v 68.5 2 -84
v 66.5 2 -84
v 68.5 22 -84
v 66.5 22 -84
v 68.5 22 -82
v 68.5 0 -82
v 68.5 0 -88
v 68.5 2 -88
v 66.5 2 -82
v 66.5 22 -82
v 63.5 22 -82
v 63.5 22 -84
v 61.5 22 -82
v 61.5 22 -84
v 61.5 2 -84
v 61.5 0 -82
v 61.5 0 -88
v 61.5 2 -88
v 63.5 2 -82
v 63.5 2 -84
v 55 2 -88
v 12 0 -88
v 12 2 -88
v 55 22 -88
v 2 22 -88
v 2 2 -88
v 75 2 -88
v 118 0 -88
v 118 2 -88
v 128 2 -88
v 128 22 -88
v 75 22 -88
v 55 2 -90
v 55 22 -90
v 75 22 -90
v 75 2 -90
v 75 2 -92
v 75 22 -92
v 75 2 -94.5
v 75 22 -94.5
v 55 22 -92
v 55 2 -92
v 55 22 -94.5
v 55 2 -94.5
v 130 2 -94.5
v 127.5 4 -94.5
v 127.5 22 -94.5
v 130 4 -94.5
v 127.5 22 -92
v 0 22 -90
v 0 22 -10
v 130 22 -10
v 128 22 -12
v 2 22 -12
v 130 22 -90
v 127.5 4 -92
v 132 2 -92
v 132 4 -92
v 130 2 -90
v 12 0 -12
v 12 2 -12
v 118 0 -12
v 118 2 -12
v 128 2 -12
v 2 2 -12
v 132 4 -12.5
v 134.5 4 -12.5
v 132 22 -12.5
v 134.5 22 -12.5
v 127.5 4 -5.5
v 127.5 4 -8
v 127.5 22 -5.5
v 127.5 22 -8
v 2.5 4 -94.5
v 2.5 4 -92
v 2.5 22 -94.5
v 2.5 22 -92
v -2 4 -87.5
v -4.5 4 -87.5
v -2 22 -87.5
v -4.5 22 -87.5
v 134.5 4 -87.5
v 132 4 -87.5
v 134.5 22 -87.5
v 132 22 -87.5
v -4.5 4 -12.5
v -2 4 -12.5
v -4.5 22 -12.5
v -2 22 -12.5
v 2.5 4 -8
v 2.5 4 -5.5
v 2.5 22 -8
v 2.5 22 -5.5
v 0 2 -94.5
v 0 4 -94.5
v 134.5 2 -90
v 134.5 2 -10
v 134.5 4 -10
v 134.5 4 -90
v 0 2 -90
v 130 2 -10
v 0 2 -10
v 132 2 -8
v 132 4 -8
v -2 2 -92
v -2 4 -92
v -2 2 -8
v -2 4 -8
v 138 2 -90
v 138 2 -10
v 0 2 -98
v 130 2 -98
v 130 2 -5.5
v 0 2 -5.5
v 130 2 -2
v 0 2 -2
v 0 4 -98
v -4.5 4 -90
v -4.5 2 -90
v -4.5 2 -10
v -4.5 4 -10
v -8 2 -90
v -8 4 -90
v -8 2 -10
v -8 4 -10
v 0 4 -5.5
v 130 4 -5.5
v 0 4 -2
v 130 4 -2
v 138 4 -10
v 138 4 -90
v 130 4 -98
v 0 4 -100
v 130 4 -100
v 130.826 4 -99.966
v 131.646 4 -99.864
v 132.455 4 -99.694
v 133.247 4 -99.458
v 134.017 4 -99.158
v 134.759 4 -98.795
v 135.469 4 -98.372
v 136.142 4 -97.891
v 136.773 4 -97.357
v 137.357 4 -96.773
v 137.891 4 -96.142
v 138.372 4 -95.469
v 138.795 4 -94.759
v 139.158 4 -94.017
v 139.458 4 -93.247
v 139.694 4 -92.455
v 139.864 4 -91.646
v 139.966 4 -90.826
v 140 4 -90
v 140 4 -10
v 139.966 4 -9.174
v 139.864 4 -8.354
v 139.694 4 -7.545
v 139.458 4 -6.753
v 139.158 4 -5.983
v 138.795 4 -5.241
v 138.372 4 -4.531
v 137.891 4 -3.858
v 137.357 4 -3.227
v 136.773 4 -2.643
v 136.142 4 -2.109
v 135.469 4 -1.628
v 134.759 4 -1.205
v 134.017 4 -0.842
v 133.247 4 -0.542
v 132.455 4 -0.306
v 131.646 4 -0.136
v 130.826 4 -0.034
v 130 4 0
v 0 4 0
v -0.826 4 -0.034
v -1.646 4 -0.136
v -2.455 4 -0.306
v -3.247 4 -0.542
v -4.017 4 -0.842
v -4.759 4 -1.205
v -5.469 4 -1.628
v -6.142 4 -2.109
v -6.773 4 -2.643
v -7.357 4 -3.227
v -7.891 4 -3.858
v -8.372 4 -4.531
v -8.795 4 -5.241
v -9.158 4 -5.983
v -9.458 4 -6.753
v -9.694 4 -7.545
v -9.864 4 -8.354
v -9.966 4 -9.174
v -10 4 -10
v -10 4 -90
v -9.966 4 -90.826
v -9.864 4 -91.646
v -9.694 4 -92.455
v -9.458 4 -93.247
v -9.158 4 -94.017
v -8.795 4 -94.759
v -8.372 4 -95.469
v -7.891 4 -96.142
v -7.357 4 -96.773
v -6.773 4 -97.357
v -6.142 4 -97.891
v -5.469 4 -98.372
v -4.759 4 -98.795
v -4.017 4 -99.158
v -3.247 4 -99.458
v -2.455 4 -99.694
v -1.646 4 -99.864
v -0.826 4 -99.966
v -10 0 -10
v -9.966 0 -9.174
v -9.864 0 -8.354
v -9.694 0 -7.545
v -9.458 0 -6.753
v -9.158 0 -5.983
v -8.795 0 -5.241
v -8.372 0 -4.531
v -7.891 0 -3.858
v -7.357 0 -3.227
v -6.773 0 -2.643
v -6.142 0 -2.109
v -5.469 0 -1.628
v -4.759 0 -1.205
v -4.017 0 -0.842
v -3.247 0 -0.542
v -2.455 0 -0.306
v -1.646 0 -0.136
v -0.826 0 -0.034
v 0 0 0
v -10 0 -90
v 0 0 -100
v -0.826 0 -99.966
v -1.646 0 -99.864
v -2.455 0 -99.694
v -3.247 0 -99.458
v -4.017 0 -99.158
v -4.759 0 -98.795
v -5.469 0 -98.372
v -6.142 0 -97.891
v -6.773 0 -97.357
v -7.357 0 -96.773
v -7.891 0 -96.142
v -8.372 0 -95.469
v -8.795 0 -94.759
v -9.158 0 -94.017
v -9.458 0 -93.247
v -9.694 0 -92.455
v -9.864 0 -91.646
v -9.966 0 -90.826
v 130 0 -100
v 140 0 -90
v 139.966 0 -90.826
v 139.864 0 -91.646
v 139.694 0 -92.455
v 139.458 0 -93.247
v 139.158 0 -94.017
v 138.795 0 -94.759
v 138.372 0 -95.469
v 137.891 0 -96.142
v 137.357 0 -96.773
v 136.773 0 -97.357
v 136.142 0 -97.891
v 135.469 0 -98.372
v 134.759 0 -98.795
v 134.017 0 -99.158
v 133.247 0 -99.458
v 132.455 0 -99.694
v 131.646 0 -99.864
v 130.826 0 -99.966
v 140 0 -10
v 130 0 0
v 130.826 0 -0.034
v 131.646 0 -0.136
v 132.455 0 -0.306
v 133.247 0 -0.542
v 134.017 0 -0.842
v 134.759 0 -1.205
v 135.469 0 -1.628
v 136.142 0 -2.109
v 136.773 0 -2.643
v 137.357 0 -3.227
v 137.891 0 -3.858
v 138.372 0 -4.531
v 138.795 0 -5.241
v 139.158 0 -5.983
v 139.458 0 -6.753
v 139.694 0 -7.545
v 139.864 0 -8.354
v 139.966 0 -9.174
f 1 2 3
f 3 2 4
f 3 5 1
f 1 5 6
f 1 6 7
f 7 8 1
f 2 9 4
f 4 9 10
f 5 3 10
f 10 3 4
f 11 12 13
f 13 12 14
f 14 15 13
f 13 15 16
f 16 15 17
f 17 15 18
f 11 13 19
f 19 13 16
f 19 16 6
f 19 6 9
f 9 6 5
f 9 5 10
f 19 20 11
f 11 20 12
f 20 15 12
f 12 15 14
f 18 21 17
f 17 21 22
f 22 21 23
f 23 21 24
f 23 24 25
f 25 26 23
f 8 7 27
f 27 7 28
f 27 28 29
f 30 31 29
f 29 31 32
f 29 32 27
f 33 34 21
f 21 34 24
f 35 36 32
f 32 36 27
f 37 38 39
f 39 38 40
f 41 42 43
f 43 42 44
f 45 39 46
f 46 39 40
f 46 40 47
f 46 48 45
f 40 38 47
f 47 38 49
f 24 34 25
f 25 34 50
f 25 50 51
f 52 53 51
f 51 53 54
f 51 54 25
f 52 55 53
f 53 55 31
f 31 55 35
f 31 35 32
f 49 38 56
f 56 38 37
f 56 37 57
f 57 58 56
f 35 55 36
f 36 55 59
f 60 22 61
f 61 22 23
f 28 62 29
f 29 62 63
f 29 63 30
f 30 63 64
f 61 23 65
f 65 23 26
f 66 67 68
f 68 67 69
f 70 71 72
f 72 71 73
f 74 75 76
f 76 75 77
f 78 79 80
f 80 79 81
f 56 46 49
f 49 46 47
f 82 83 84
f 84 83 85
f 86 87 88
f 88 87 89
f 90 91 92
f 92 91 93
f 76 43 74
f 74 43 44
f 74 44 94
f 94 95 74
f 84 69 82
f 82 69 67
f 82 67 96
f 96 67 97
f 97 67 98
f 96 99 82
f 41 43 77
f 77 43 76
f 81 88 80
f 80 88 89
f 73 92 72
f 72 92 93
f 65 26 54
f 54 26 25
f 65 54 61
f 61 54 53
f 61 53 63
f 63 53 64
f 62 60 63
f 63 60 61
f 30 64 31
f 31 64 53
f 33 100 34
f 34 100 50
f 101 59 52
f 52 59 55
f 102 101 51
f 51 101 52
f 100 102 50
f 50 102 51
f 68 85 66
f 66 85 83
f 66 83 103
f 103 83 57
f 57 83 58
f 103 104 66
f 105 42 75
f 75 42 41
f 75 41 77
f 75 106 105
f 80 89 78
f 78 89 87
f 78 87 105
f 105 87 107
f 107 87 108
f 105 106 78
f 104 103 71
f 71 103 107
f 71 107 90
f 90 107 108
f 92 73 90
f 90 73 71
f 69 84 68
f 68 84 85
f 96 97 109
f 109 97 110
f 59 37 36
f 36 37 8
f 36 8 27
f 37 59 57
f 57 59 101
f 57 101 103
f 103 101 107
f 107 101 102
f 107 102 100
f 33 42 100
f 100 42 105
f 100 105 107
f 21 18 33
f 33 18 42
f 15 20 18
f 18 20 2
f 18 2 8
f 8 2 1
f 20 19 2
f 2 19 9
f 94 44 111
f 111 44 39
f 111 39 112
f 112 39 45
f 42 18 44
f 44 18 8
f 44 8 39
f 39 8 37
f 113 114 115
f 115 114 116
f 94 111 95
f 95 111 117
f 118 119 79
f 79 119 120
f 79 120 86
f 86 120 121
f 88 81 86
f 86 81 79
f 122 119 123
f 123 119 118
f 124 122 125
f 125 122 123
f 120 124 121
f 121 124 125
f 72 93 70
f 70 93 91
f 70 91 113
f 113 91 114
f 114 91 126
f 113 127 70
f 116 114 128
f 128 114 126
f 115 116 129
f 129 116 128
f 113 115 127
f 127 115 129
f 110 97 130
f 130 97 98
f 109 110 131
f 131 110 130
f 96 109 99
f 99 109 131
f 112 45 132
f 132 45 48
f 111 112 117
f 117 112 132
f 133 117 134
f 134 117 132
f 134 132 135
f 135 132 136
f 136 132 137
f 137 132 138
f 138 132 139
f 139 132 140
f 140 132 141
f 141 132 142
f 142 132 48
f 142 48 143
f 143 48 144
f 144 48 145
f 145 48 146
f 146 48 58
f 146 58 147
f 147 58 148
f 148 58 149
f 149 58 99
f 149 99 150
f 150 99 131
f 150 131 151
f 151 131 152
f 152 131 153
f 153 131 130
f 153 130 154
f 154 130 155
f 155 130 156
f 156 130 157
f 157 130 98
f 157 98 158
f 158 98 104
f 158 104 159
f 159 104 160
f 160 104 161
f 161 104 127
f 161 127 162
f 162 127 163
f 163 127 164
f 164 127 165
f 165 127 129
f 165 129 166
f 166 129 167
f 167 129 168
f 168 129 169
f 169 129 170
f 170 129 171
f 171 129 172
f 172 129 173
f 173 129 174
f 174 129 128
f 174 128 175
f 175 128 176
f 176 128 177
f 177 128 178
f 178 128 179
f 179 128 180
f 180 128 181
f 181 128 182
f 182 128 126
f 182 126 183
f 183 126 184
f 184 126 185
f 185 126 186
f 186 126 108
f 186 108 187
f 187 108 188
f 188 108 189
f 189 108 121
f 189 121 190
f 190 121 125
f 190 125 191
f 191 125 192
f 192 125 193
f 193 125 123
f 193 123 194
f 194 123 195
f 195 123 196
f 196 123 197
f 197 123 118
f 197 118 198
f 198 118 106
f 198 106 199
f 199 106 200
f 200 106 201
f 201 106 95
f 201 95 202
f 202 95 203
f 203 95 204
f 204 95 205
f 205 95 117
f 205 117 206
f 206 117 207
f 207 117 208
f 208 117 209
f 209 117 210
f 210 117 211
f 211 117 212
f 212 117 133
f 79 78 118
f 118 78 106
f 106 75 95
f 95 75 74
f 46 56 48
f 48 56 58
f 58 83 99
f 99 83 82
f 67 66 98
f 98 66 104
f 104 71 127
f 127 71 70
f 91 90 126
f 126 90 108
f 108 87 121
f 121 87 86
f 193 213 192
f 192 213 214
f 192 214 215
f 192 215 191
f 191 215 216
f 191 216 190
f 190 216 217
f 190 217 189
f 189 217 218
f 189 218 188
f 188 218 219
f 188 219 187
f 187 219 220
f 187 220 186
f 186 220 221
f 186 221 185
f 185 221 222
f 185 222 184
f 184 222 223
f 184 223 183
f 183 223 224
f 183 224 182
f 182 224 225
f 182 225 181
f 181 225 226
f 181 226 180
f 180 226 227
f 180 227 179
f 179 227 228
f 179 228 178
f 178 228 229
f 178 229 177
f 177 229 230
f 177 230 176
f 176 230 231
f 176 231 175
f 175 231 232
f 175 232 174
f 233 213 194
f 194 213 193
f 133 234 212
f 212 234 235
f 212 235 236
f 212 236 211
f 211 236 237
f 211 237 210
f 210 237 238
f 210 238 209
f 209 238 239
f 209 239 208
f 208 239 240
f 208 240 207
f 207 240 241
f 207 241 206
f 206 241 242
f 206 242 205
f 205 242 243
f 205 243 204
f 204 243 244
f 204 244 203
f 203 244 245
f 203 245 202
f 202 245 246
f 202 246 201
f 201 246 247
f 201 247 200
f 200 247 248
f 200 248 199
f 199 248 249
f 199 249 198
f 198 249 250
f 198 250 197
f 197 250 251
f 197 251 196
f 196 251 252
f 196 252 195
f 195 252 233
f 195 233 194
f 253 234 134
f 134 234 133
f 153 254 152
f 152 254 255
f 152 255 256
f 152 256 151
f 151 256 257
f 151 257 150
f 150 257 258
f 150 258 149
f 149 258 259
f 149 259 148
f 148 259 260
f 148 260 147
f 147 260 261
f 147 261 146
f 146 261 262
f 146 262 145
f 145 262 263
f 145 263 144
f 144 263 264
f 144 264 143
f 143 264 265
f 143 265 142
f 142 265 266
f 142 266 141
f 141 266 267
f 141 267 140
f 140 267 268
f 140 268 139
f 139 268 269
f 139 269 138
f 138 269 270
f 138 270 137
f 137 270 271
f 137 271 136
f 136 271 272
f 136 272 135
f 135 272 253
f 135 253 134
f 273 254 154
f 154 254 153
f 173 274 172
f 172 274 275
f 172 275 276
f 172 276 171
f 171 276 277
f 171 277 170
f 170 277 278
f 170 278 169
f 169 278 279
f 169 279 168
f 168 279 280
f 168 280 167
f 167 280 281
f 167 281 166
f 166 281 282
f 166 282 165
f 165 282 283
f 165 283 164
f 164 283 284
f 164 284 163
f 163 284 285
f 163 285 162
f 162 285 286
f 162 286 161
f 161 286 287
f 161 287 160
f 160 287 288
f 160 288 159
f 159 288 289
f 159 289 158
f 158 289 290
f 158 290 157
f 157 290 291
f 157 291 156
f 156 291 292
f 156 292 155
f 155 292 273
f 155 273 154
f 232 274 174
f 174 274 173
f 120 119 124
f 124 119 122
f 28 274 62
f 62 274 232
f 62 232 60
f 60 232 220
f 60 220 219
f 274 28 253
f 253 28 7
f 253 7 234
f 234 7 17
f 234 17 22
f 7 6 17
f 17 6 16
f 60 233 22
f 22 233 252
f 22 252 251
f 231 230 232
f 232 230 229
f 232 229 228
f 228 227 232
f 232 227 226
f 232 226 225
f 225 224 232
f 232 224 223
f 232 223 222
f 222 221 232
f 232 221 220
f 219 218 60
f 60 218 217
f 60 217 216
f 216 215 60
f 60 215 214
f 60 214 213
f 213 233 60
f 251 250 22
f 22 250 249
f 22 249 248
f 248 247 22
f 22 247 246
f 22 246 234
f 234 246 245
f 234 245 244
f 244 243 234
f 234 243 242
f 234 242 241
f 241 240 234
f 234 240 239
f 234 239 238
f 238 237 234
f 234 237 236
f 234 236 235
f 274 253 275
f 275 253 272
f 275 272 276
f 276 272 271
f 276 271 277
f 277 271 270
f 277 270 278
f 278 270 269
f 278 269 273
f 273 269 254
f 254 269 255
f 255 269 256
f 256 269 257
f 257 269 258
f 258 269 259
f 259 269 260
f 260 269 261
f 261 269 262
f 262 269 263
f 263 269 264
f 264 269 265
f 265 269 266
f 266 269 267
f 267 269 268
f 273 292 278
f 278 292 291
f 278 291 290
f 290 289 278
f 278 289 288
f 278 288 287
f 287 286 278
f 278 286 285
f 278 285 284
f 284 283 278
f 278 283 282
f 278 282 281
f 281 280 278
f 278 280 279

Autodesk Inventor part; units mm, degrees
ref_plane "YZ Plane" through (0, 0, 0) normal (1, 0, 0) x (0, 1, 0)
ref_plane "XZ Plane" through (0, 0, 0) normal (0, 1, 0) x (-1, 0, 0)
ref_plane "XY Plane" through (0, 0, 0) normal (0, 0, 1) x (1, 0, 0)
sketch "Skizze1" plane through (0, 0, 0) normal (0, 1, 0) x (-1, 0, 0)
  line L0 (0, 0) -> (-130, 0)
  line L1 (-140, -10) -> (-140, -90)
  line L2 (-130, -100) -> (0, -100)
  line L3 (10, -10) -> (10, -90)
  arc A0 (0, -100) -> (10, -90) centre (0, -90) ccw
  arc A1 (-140, -90) -> (-130, -100) centre (-130, -90) ccw
  arc A2 (-130, 0) -> (-140, -10) centre (-130, -10) ccw
  arc A3 (10, -10) -> (0, 0) centre (0, -10) ccw
  dimension "d0" = 150
  dimension "d1" = 100
  dimension "d2" = 10
extrude "Extrusion1" add sketch "Skizze1" along normal blind 2
sketch "Skizze2" plane through (0, 2, 0) normal (0, 1, 0) x (1, 0, 0)
  line L0 (0, 0) -> (130, 0) projected
  arc A0 (130, 0) -> (140, 10) centre (130, 10) ccw projected
  line L1 (140, 10) -> (140, 90) projected
  arc A1 (140, 90) -> (130, 100) centre (130, 90) ccw projected
  line L2 (130, 100) -> (0, 100) projected
  arc A2 (0, 100) -> (-10, 90) centre (0, 90) ccw projected
  line L3 (-10, 90) -> (-10, 10) projected
  arc A3 (-10, 10) -> (0, 0) centre (0, 10) ccw projected
  line L4 (0, 2) -> (130, 2)
  line L5 (130, 2) -> (130, 5.5)
  line L6 (130, 5.5) -> (0, 5.5)
  line L7 (0, 5.5) -> (0, 2)
  line L8 (138, 10) -> (134.5, 10)
  line L9 (134.5, 10) -> (134.5, 90)
  line L10 (134.5, 90) -> (138, 90)
  line L11 (138, 90) -> (138, 10)
  line L12 (130, 98) -> (0, 98)
  line L13 (0, 98) -> (0, 94.5)
  line L14 (0, 94.5) -> (130, 94.5)
  line L15 (130, 94.5) -> (130, 98)
  line L16 (-8, 90) -> (-4.5, 90)
  line L17 (-4.5, 90) -> (-4.5, 10)
  line L18 (-4.5, 10) -> (-8, 10)
  line L19 (-8, 10) -> (-8, 90)
  line L20 (65, 2) -> (65, 0) construction
  line L21 (0, 0) -> (130, 0) construction
  line L22 (138, 50) -> (140, 50) construction
  line L23 (140, 10) -> (140, 90) construction
  line L24 (65, 98) -> (65, 100) construction
  line L25 (130, 100) -> (0, 100) construction
  line L26 (-8, 50) -> (-10, 50) construction
  line L27 (-10, 90) -> (-10, 10) construction
  line L28 (140, 88) -> (138, 88)
  line L29 (134.5, 88) -> (132.5, 88)
  line L30 (132.5, 88) -> (132.5, 92.5)
  line L31 (132.5, 92.5) -> (128, 92.5)
  line L32 (128, 92.5) -> (128, 94.5)
  line L33 (128, 98) -> (128, 100)
  line L34 (140, 12) -> (138, 12)
  line L35 (134.5, 12) -> (132.5, 12)
  line L36 (132.5, 12) -> (132.5, 7.5)
  line L37 (132.5, 7.5) -> (128, 7.5)
  line L38 (128, 7.5) -> (128, 5.5)
  line L39 (128, 2) -> (128, 0)
  line L40 (2, 0) -> (2, 2)
  line L41 (2, 5.5) -> (2, 7.5)
  line L42 (2, 7.5) -> (-2.5, 7.5)
  line L43 (-2.5, 7.5) -> (-2.5, 12)
  line L44 (-2.5, 12) -> (-4.5, 12)
  line L45 (-8, 12) -> (-10, 12)
  line L46 (-10, 88) -> (-8, 88)
  line L47 (-4.5, 88) -> (-2.5, 88)
  line L48 (-2.5, 88) -> (-2.5, 92.5)
  line L49 (-2.5, 92.5) -> (2, 92.5)
  line L50 (2, 92.5) -> (2, 94.5)
  line L51 (2, 98) -> (2, 100)
  line L52 (-2, 92) -> (132, 92)
  line L53 (132, 92) -> (132, 8)
  line L54 (132, 8) -> (-2, 8)
  line L55 (-2, 8) -> (-2, 92)
  line L56 (130, 90) -> (0, 90)
  line L57 (0, 90) -> (0, 10)
  line L58 (0, 10) -> (130, 10)
  line L59 (130, 10) -> (130, 90)
  line L60 (-2.5, 92.5) -> (0, 90) construction
  line L61 (132.5, 92.5) -> (130, 90) construction
  line L62 (132.5, 7.5) -> (130, 10) construction
  line L63 (-2.5, 7.5) -> (0, 10) construction
  line L64 (2, 88) -> (128, 88)
  line L65 (128, 88) -> (128, 12)
  line L66 (128, 12) -> (2, 12)
  line L67 (2, 12) -> (2, 88)
  line L68 (132.5, 12) -> (132, 12)
  line L69 (128, 7.5) -> (128, 8)
  line L70 (132.5, 88) -> (132, 88)
  line L71 (128, 92.5) -> (128, 92)
  line L72 (2, 92.5) -> (2, 92)
  line L73 (-2.5, 88) -> (-2, 88)
  line L74 (2, 7.5) -> (2, 8)
  line L75 (-2.5, 12) -> (-2, 12)
  point P0 (130, 3.75)
  point P1 (128, 0)
  dimension "d5" = 3.5
  dimension "d6" = 2
  dimension "d7" = 2
  dimension "d12" = 2
  dimension "d13" = 2
  dimension "d14" = 0.5
  dimension "d15" = 2
extrude "Extrusion2" add sketch "Skizze2" along normal blind 2 contours A3 L3 L45 L19 L18 L17 L44 L43 L42 L41 L6 L7 L4 L40 L0 | L40 L4 L39 L0 | L39 L4 L5 L6 L38 L37 L36 L35 L9 L8 L11 L34 L1 A0 L0 | L3 L46 L19 L45 | L3 A2 L2 L51 L12 L13 L14 L50 L49 L48 L47 L17 L16 L19 L46 | L34 L11 L28 L1 | L28 L11 L10 L9 L29 L30 L31 L32 L14 L15 L12 L33 L2 A1 L1 | L2 L33 L12 L51
extrude "Extrusion4" add sketch "Skizze2" along normal blind 20 contours L41 L74 L54 L69 L38 L6 | L42 L43 L75 L55 L54 L74 | L17 L47 L73 L55 L75 L44 | L69 L54 L53 L68 L36 L37 | L48 L49 L72 L52 L55 L73 | L35 L68 L53 L70 L29 L9 | L14 L32 L71 L52 L72 L50 | L70 L53 L52 L71 L31 L30 | L59 L58 L57 L56
sketch "Skizze3" plane through (0, 22, 0) normal (0, 1, 0) x (1, 0, 0)
  line L0 (132.5, 7.5) -> (132.5, 12) projected
  line L1 (132.5, 12) -> (134.5, 12) projected
  line L2 (134.5, 12) -> (134.5, 88) projected
  line L3 (134.5, 88) -> (132.5, 88) projected
  line L4 (132.5, 88) -> (132.5, 92.5) projected
  line L5 (132.5, 92.5) -> (128, 92.5) projected
  line L6 (128, 92.5) -> (128, 94.5) projected
  line L7 (128, 94.5) -> (2, 94.5) projected
  line L8 (2, 94.5) -> (2, 92.5) projected
  line L9 (2, 92.5) -> (-2.5, 92.5) projected
  line L10 (-2.5, 92.5) -> (-2.5, 88) projected
  line L11 (-2.5, 88) -> (-4.5, 88) projected
  line L12 (-4.5, 88) -> (-4.5, 12) projected
  line L13 (-4.5, 12) -> (-2.5, 12) projected
  line L14 (-2.5, 12) -> (-2.5, 7.5) projected
  line L15 (-2.5, 7.5) -> (2, 7.5) projected
  line L16 (2, 7.5) -> (2, 5.5) projected
  line L17 (2, 5.5) -> (128, 5.5) projected
  line L18 (128, 5.5) -> (128, 7.5) projected
  line L19 (128, 7.5) -> (132.5, 7.5) projected
  line L20 (132, 8) -> (-2, 8) projected
  line L21 (-2, 8) -> (-2, 92) projected
  line L22 (-2, 92) -> (132, 92) projected
  line L23 (132, 92) -> (132, 8) projected
  line L24 (132, 12.5) -> (132, 8)
  line L25 (132, 8) -> (127.5, 8)
  line L26 (127.5, 8) -> (127.5, 6)
  line L27 (127.5, 6) -> (2.5, 6)
  line L28 (2.5, 6) -> (2.5, 8)
  line L29 (2.5, 8) -> (-2, 8)
  line L30 (-2, 8) -> (-2, 12.5)
  line L31 (-2, 12.5) -> (-4, 12.5)
  line L32 (-4, 12.5) -> (-4, 87.5)
  line L33 (-4, 87.5) -> (-2, 87.5)
  line L34 (-2, 87.5) -> (-2, 92)
  line L35 (-2, 92) -> (2.5, 92)
  line L36 (2.5, 92) -> (2.5, 94)
  line L37 (2.5, 94) -> (127.5, 94)
  line L38 (127.5, 94) -> (127.5, 92)
  line L39 (127.5, 92) -> (132, 92)
  line L40 (132, 92) -> (132, 87.5)
  line L41 (132, 87.5) -> (134, 87.5)
  line L42 (134, 87.5) -> (134, 12.5)
  line L43 (134, 12.5) -> (132, 12.5)
  line L44 (2.5, 6) -> (2.5, 5.5)
  line L45 (-4, 12.5) -> (-4.5, 12.5)
  line L46 (-4.5, 10) -> (-4.5, 90) projected
  line L47 (-4, 87.5) -> (-4.5, 87.5)
  line L48 (2.5, 94) -> (2.5, 94.5)
  line L49 (0, 94.5) -> (130, 94.5) projected
  line L50 (127.5, 94) -> (127.5, 94.5)
  line L51 (134, 87.5) -> (134.5, 87.5)
  line L52 (134, 12.5) -> (134.5, 12.5)
  line L53 (127.5, 6) -> (127.5, 5.5)
  line L54 (2, 5.5) -> (128, 5.5) projected
  point P0 (0, 0)
  dimension "d22" = 0.5
extrude "Extrusion5" cut sketch "Skizze3" against normal up to surface (18 mm away) contours L19 L18 L17 L53 L26 L20 L23 L43 L52 L2 L1 L0 | L51 L41 L23 L22 L38 L50 L7 L6 L5 L4 L3 L2 | L17 L16 L15 L14 L13 L12 L45 L31 L21 L20 L28 L44 | L22 L21 L33 L47 L12 L11 L10 L9 L8 L7 L48 L36
sketch "Skizze4" plane through (0, 2, 0) normal (0, 1, 0) x (1, 0, 0)
  line L0 (2, 88) -> (2, 12) projected
  line L1 (2, 12) -> (128, 12) projected
  line L2 (128, 12) -> (128, 88) projected
  line L3 (128, 88) -> (2, 88) projected
  line L4 (128, 88) -> (2, 88) projected
  line L5 (128, 12) -> (2, 12) projected
  line L6 (12, 88) -> (118, 88)
  line L7 (118, 88) -> (118, 12)
  line L8 (118, 12) -> (12, 12)
  line L9 (12, 12) -> (12, 88)
  line L10 (2, 88) -> (128, 88) projected
  point P0 (0, 0)
  point P1 (65, 88)
  point P2 (12, 12)
  point P3 (118, 12)
  point P4 (118, 88)
  dimension "d25" = 10
extrude "Extrusion6" cut sketch "Skizze4" against normal through all contours L3 L7 L1 L9
sketch "Skizze6" plane through (130, 2, -94.5) normal (0, 0, -1) x (-1, 0, 0)
  line L0 (130, 2) -> (127.5, 2) projected
  line L1 (127.5, 2) -> (127.5, 20) projected
  line L2 (2.5, 20) -> (127.5, 20) projected
  line L3 (2.5, 20) -> (2.5, 2) projected
  line L4 (0, 2) -> (2.5, 2) projected
  line L5 (0, 0) -> (0, 2) projected
  line L6 (130, 0) -> (0, 0) projected
  line L7 (130, 0) -> (130, 2) projected
  line L8 (128, 20) -> (2, 20) projected
  line L9 (55, 20) -> (75, 20)
  line L10 (75, 20) -> (75, 0)
  line L11 (75, 0) -> (55, 0)
  line L12 (55, 0) -> (55, 20)
  point P0 (130, -2)
  point P1 (65, 20)
  point P2 (55, 20)
  point P3 (55, 0)
  point P4 (75, 20)
  dimension "d31" = 20
extrude "Extrusion8" cut sketch "Skizze6" against normal up to surface (6.5 mm away) contours L6 L12 L2 L10
sketch "Skizze7" plane through (0, 0, 0) normal (0, -1, 0) x (1, 0, 0)
  line L0 (118, -12) -> (118, -88) projected
  line L1 (118, -88) -> (12, -88) projected
  line L2 (12, -88) -> (12, -12) projected
  line L3 (12, -12) -> (118, -12) projected
  line L4 (0, 0) -> (130, 0) projected
  arc A0 (0, 0) -> (-10, -10) centre (0, -10) ccw projected
  line L5 (-10, -90) -> (-10, -10) projected
  arc A1 (-10, -90) -> (0, -100) centre (0, -90) ccw projected
  line L6 (130, -100) -> (0, -100) projected
  arc A2 (130, -100) -> (140, -90) centre (130, -90) ccw projected
  line L7 (140, -10) -> (140, -90) projected
  arc A3 (140, -10) -> (130, 0) centre (130, -10) ccw projected
  line L8 (118, -88) -> (12, -88) projected
  line L9 (68.5, -88) -> (61.5, -88)
  line L10 (61.5, -88) -> (61.5, -82)
  line L11 (61.5, -82) -> (68.5, -82)
  line L12 (68.5, -82) -> (68.5, -88)
  line L13 (61.5, -82) -> (63.5, -82)
  line L14 (63.5, -82) -> (63.5, -84)
  line L15 (63.5, -84) -> (61.5, -84)
  line L16 (61.5, -84) -> (61.5, -82)
  line L17 (68.5, -82) -> (66.5, -82)
  line L18 (66.5, -82) -> (66.5, -84)
  line L19 (66.5, -84) -> (68.5, -84)
  line L20 (68.5, -84) -> (68.5, -82)
  point P0 (65, -88)
  point P1 (61.5, -84)
  dimension "d39" = 6
  dimension "d40" = 7
  dimension "d41" = 2
extrude "Extrusion9" add sketch "Skizze7" against normal up to surface (22 mm away) contours L19 L18 L11 L12 | L10 L11 L14 L15
extrude "Extrusion10" add sketch "Skizze7" against normal blind 2 contours L1 L10 L15 L14 L11 L18 L19 L12
properties part number "bottom"
